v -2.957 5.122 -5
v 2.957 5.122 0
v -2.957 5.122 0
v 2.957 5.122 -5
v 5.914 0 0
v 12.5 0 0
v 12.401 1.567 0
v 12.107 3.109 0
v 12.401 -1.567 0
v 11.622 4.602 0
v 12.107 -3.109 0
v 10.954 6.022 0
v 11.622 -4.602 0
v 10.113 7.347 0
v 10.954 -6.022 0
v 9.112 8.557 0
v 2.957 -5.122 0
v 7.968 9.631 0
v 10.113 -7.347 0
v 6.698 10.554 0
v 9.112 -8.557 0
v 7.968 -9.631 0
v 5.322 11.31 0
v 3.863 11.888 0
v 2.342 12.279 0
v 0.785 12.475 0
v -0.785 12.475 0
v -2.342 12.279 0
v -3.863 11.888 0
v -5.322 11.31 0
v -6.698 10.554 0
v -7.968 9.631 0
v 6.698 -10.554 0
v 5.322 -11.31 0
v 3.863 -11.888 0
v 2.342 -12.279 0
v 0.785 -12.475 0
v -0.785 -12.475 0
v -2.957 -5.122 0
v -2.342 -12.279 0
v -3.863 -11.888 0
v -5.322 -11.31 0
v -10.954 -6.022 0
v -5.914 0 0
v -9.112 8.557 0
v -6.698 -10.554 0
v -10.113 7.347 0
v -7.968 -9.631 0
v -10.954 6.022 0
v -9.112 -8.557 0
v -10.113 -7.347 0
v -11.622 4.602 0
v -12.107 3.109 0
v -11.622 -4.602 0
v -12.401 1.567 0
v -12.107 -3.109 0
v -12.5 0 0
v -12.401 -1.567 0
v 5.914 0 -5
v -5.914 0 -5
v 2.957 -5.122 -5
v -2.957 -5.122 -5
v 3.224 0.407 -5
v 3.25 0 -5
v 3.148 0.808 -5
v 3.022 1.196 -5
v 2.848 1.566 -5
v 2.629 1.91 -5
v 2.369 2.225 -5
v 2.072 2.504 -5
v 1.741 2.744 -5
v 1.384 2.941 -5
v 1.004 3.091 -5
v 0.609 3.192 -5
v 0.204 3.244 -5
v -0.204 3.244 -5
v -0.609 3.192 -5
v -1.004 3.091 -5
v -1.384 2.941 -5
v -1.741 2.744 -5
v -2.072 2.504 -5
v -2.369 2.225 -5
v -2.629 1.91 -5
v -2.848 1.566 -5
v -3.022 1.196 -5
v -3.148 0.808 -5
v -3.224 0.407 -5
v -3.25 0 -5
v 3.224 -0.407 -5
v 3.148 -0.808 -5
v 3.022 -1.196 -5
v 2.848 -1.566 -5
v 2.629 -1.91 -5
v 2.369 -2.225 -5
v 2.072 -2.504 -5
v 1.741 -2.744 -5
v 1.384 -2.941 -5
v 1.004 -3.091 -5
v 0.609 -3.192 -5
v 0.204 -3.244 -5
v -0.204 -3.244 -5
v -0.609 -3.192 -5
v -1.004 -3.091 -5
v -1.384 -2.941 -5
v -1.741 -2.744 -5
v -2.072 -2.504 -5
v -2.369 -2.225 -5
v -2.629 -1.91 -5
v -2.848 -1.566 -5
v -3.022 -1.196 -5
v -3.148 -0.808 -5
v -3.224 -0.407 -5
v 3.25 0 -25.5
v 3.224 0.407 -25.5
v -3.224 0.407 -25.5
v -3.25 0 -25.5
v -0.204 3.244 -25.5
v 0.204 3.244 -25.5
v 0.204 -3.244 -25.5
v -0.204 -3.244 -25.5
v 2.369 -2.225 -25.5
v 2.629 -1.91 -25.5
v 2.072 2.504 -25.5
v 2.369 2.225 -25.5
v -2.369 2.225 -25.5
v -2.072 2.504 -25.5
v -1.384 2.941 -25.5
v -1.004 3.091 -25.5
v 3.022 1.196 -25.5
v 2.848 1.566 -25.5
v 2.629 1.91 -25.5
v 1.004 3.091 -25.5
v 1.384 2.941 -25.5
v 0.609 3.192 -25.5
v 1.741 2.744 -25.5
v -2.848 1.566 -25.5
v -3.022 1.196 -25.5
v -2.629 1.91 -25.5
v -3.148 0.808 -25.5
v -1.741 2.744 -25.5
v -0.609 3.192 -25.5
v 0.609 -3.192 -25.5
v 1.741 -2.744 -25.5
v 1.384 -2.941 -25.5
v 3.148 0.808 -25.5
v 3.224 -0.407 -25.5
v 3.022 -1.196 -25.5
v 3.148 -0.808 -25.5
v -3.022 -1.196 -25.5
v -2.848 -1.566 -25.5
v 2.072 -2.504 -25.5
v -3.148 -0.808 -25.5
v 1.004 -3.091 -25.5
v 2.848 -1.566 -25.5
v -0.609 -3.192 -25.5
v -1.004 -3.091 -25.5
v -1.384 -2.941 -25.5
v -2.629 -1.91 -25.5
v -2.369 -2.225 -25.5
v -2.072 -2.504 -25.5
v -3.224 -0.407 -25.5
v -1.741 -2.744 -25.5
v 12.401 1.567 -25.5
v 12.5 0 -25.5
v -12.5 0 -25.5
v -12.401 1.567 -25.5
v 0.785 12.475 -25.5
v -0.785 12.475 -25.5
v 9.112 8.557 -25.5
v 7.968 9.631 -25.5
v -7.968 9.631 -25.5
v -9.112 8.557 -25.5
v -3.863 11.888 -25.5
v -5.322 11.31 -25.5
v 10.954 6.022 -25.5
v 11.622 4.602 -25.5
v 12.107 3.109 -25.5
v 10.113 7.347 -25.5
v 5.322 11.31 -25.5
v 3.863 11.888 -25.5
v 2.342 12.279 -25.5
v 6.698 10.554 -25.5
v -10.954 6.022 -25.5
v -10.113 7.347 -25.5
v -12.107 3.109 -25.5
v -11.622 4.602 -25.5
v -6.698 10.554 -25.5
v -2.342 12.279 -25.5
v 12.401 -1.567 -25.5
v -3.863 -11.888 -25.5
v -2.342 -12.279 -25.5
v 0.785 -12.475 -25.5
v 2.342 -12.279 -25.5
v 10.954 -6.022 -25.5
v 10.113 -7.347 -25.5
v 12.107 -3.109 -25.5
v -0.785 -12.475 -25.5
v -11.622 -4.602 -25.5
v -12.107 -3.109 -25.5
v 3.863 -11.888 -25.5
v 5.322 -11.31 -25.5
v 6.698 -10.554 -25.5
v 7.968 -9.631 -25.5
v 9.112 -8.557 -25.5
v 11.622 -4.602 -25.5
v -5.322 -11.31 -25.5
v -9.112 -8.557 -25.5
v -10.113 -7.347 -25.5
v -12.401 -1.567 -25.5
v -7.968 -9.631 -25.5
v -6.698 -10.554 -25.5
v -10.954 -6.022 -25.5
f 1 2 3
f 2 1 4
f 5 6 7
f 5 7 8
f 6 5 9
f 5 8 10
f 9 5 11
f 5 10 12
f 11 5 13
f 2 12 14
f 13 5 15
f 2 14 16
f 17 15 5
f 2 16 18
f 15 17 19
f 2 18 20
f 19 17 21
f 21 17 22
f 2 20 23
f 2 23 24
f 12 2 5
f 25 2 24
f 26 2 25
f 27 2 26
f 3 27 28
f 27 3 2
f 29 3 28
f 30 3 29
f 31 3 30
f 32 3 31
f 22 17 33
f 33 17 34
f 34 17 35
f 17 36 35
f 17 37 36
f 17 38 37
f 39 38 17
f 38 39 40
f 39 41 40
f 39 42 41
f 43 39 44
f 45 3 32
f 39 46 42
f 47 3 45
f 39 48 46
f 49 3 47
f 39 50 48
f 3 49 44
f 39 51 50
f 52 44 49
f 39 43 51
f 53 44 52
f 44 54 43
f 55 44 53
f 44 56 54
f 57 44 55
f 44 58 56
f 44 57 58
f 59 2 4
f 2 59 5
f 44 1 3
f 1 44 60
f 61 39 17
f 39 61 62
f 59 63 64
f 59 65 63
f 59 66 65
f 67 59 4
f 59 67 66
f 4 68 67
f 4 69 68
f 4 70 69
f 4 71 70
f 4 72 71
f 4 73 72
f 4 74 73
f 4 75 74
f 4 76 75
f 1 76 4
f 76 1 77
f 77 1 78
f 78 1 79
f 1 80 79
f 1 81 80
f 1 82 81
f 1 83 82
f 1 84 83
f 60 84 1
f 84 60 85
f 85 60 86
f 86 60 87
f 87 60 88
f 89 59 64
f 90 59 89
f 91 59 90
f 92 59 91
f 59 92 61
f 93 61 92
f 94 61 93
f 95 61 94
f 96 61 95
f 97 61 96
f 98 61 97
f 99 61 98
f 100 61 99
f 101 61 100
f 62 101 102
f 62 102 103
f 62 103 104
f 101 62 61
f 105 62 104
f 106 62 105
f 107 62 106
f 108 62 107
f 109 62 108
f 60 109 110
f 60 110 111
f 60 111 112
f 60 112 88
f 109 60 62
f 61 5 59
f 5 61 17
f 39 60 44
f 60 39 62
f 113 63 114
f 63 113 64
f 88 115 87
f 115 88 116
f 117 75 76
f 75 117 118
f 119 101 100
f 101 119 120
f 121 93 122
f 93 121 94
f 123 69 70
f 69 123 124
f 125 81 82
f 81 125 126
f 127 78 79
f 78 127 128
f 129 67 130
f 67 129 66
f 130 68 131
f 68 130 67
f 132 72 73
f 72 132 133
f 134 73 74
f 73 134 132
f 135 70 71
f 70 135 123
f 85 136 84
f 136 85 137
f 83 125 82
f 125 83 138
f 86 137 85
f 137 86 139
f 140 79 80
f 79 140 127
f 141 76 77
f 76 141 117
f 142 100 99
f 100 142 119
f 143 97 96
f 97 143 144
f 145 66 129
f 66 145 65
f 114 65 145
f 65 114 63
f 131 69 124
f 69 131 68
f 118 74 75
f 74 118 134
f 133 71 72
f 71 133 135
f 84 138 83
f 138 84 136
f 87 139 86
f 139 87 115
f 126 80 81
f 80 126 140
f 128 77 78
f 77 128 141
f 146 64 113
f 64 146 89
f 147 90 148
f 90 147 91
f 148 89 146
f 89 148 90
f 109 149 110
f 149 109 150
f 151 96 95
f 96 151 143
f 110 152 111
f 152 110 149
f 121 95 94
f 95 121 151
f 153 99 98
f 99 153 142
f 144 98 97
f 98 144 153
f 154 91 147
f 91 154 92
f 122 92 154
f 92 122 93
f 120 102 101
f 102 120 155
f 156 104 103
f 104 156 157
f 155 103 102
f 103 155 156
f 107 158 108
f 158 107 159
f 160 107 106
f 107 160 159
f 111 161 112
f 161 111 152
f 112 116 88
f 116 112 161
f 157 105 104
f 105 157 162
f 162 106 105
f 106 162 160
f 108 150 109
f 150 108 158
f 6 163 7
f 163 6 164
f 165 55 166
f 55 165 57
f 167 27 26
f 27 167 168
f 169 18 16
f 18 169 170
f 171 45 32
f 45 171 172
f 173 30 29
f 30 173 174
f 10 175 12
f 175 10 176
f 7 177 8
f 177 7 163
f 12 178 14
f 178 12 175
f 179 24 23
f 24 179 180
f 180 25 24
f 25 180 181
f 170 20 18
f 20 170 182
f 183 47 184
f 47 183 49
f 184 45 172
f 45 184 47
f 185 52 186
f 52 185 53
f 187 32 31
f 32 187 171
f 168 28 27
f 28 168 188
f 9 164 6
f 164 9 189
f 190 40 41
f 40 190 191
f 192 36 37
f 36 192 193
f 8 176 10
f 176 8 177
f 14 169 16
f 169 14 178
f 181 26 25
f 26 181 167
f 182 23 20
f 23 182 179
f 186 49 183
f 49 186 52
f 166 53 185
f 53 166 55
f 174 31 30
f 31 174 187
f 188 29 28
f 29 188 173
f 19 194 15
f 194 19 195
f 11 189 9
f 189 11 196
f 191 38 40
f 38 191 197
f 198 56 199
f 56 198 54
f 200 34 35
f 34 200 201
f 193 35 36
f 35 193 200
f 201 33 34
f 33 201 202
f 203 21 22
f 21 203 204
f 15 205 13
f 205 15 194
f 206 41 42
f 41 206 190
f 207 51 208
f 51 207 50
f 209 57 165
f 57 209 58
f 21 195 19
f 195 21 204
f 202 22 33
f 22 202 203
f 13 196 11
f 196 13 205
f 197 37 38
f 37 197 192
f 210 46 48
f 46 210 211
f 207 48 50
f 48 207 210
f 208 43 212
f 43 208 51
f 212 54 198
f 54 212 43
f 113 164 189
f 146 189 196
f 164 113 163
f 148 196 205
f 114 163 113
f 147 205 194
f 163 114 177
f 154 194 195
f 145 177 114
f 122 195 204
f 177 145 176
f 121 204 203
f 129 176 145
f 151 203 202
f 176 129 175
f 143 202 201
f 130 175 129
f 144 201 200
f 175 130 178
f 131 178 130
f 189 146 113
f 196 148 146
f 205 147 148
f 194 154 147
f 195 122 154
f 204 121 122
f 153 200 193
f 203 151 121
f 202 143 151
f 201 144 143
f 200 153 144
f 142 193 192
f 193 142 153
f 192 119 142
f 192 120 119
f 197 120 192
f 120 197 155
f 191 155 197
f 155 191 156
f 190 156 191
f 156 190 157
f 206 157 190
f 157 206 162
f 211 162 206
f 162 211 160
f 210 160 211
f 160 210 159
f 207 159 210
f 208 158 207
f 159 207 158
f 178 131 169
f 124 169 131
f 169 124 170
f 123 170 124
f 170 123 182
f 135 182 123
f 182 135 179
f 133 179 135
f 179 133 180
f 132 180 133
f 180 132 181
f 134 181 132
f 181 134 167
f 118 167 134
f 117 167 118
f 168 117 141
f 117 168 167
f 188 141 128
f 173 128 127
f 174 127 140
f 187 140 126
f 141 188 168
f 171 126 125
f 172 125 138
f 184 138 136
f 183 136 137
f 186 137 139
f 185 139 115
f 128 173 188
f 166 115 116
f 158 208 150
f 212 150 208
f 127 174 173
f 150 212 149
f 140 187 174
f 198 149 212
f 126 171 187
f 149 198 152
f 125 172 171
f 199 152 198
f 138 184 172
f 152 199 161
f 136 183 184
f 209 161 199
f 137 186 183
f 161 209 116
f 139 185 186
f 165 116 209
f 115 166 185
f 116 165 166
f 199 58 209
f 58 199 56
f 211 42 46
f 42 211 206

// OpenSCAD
$fn = 50;

difference() {
	union() {
		translate(v = [0, 0, -25.5]) {
			cylinder(h = 25.5, r = 12.5);
		}
	}
	union() {
		translate(v = [0, 0, 0]) {
			rotate(a = [0, 0, 0]) {
				difference() {
					union() {
						translate(v = [0, 0, -5]) {
							linear_extrude(height = 5) {
								polygon(points = [[5.914249999999999, 0.0], [2.957125, 5.1218907443321156], [-2.9571249999999982, 5.1218907443321156], [-5.914249999999999, 7.242867331857232e-16], [-2.9571250000000022, -5.121890744332115], [2.9571249999999956, -5.121890744332118]]);
							}
						}
					}
					union();
				}
			}
		}
		#translate(v = [0, 0, -100.0]) {
			cylinder(h = 200, r = 3.25);
		}
	}
}
